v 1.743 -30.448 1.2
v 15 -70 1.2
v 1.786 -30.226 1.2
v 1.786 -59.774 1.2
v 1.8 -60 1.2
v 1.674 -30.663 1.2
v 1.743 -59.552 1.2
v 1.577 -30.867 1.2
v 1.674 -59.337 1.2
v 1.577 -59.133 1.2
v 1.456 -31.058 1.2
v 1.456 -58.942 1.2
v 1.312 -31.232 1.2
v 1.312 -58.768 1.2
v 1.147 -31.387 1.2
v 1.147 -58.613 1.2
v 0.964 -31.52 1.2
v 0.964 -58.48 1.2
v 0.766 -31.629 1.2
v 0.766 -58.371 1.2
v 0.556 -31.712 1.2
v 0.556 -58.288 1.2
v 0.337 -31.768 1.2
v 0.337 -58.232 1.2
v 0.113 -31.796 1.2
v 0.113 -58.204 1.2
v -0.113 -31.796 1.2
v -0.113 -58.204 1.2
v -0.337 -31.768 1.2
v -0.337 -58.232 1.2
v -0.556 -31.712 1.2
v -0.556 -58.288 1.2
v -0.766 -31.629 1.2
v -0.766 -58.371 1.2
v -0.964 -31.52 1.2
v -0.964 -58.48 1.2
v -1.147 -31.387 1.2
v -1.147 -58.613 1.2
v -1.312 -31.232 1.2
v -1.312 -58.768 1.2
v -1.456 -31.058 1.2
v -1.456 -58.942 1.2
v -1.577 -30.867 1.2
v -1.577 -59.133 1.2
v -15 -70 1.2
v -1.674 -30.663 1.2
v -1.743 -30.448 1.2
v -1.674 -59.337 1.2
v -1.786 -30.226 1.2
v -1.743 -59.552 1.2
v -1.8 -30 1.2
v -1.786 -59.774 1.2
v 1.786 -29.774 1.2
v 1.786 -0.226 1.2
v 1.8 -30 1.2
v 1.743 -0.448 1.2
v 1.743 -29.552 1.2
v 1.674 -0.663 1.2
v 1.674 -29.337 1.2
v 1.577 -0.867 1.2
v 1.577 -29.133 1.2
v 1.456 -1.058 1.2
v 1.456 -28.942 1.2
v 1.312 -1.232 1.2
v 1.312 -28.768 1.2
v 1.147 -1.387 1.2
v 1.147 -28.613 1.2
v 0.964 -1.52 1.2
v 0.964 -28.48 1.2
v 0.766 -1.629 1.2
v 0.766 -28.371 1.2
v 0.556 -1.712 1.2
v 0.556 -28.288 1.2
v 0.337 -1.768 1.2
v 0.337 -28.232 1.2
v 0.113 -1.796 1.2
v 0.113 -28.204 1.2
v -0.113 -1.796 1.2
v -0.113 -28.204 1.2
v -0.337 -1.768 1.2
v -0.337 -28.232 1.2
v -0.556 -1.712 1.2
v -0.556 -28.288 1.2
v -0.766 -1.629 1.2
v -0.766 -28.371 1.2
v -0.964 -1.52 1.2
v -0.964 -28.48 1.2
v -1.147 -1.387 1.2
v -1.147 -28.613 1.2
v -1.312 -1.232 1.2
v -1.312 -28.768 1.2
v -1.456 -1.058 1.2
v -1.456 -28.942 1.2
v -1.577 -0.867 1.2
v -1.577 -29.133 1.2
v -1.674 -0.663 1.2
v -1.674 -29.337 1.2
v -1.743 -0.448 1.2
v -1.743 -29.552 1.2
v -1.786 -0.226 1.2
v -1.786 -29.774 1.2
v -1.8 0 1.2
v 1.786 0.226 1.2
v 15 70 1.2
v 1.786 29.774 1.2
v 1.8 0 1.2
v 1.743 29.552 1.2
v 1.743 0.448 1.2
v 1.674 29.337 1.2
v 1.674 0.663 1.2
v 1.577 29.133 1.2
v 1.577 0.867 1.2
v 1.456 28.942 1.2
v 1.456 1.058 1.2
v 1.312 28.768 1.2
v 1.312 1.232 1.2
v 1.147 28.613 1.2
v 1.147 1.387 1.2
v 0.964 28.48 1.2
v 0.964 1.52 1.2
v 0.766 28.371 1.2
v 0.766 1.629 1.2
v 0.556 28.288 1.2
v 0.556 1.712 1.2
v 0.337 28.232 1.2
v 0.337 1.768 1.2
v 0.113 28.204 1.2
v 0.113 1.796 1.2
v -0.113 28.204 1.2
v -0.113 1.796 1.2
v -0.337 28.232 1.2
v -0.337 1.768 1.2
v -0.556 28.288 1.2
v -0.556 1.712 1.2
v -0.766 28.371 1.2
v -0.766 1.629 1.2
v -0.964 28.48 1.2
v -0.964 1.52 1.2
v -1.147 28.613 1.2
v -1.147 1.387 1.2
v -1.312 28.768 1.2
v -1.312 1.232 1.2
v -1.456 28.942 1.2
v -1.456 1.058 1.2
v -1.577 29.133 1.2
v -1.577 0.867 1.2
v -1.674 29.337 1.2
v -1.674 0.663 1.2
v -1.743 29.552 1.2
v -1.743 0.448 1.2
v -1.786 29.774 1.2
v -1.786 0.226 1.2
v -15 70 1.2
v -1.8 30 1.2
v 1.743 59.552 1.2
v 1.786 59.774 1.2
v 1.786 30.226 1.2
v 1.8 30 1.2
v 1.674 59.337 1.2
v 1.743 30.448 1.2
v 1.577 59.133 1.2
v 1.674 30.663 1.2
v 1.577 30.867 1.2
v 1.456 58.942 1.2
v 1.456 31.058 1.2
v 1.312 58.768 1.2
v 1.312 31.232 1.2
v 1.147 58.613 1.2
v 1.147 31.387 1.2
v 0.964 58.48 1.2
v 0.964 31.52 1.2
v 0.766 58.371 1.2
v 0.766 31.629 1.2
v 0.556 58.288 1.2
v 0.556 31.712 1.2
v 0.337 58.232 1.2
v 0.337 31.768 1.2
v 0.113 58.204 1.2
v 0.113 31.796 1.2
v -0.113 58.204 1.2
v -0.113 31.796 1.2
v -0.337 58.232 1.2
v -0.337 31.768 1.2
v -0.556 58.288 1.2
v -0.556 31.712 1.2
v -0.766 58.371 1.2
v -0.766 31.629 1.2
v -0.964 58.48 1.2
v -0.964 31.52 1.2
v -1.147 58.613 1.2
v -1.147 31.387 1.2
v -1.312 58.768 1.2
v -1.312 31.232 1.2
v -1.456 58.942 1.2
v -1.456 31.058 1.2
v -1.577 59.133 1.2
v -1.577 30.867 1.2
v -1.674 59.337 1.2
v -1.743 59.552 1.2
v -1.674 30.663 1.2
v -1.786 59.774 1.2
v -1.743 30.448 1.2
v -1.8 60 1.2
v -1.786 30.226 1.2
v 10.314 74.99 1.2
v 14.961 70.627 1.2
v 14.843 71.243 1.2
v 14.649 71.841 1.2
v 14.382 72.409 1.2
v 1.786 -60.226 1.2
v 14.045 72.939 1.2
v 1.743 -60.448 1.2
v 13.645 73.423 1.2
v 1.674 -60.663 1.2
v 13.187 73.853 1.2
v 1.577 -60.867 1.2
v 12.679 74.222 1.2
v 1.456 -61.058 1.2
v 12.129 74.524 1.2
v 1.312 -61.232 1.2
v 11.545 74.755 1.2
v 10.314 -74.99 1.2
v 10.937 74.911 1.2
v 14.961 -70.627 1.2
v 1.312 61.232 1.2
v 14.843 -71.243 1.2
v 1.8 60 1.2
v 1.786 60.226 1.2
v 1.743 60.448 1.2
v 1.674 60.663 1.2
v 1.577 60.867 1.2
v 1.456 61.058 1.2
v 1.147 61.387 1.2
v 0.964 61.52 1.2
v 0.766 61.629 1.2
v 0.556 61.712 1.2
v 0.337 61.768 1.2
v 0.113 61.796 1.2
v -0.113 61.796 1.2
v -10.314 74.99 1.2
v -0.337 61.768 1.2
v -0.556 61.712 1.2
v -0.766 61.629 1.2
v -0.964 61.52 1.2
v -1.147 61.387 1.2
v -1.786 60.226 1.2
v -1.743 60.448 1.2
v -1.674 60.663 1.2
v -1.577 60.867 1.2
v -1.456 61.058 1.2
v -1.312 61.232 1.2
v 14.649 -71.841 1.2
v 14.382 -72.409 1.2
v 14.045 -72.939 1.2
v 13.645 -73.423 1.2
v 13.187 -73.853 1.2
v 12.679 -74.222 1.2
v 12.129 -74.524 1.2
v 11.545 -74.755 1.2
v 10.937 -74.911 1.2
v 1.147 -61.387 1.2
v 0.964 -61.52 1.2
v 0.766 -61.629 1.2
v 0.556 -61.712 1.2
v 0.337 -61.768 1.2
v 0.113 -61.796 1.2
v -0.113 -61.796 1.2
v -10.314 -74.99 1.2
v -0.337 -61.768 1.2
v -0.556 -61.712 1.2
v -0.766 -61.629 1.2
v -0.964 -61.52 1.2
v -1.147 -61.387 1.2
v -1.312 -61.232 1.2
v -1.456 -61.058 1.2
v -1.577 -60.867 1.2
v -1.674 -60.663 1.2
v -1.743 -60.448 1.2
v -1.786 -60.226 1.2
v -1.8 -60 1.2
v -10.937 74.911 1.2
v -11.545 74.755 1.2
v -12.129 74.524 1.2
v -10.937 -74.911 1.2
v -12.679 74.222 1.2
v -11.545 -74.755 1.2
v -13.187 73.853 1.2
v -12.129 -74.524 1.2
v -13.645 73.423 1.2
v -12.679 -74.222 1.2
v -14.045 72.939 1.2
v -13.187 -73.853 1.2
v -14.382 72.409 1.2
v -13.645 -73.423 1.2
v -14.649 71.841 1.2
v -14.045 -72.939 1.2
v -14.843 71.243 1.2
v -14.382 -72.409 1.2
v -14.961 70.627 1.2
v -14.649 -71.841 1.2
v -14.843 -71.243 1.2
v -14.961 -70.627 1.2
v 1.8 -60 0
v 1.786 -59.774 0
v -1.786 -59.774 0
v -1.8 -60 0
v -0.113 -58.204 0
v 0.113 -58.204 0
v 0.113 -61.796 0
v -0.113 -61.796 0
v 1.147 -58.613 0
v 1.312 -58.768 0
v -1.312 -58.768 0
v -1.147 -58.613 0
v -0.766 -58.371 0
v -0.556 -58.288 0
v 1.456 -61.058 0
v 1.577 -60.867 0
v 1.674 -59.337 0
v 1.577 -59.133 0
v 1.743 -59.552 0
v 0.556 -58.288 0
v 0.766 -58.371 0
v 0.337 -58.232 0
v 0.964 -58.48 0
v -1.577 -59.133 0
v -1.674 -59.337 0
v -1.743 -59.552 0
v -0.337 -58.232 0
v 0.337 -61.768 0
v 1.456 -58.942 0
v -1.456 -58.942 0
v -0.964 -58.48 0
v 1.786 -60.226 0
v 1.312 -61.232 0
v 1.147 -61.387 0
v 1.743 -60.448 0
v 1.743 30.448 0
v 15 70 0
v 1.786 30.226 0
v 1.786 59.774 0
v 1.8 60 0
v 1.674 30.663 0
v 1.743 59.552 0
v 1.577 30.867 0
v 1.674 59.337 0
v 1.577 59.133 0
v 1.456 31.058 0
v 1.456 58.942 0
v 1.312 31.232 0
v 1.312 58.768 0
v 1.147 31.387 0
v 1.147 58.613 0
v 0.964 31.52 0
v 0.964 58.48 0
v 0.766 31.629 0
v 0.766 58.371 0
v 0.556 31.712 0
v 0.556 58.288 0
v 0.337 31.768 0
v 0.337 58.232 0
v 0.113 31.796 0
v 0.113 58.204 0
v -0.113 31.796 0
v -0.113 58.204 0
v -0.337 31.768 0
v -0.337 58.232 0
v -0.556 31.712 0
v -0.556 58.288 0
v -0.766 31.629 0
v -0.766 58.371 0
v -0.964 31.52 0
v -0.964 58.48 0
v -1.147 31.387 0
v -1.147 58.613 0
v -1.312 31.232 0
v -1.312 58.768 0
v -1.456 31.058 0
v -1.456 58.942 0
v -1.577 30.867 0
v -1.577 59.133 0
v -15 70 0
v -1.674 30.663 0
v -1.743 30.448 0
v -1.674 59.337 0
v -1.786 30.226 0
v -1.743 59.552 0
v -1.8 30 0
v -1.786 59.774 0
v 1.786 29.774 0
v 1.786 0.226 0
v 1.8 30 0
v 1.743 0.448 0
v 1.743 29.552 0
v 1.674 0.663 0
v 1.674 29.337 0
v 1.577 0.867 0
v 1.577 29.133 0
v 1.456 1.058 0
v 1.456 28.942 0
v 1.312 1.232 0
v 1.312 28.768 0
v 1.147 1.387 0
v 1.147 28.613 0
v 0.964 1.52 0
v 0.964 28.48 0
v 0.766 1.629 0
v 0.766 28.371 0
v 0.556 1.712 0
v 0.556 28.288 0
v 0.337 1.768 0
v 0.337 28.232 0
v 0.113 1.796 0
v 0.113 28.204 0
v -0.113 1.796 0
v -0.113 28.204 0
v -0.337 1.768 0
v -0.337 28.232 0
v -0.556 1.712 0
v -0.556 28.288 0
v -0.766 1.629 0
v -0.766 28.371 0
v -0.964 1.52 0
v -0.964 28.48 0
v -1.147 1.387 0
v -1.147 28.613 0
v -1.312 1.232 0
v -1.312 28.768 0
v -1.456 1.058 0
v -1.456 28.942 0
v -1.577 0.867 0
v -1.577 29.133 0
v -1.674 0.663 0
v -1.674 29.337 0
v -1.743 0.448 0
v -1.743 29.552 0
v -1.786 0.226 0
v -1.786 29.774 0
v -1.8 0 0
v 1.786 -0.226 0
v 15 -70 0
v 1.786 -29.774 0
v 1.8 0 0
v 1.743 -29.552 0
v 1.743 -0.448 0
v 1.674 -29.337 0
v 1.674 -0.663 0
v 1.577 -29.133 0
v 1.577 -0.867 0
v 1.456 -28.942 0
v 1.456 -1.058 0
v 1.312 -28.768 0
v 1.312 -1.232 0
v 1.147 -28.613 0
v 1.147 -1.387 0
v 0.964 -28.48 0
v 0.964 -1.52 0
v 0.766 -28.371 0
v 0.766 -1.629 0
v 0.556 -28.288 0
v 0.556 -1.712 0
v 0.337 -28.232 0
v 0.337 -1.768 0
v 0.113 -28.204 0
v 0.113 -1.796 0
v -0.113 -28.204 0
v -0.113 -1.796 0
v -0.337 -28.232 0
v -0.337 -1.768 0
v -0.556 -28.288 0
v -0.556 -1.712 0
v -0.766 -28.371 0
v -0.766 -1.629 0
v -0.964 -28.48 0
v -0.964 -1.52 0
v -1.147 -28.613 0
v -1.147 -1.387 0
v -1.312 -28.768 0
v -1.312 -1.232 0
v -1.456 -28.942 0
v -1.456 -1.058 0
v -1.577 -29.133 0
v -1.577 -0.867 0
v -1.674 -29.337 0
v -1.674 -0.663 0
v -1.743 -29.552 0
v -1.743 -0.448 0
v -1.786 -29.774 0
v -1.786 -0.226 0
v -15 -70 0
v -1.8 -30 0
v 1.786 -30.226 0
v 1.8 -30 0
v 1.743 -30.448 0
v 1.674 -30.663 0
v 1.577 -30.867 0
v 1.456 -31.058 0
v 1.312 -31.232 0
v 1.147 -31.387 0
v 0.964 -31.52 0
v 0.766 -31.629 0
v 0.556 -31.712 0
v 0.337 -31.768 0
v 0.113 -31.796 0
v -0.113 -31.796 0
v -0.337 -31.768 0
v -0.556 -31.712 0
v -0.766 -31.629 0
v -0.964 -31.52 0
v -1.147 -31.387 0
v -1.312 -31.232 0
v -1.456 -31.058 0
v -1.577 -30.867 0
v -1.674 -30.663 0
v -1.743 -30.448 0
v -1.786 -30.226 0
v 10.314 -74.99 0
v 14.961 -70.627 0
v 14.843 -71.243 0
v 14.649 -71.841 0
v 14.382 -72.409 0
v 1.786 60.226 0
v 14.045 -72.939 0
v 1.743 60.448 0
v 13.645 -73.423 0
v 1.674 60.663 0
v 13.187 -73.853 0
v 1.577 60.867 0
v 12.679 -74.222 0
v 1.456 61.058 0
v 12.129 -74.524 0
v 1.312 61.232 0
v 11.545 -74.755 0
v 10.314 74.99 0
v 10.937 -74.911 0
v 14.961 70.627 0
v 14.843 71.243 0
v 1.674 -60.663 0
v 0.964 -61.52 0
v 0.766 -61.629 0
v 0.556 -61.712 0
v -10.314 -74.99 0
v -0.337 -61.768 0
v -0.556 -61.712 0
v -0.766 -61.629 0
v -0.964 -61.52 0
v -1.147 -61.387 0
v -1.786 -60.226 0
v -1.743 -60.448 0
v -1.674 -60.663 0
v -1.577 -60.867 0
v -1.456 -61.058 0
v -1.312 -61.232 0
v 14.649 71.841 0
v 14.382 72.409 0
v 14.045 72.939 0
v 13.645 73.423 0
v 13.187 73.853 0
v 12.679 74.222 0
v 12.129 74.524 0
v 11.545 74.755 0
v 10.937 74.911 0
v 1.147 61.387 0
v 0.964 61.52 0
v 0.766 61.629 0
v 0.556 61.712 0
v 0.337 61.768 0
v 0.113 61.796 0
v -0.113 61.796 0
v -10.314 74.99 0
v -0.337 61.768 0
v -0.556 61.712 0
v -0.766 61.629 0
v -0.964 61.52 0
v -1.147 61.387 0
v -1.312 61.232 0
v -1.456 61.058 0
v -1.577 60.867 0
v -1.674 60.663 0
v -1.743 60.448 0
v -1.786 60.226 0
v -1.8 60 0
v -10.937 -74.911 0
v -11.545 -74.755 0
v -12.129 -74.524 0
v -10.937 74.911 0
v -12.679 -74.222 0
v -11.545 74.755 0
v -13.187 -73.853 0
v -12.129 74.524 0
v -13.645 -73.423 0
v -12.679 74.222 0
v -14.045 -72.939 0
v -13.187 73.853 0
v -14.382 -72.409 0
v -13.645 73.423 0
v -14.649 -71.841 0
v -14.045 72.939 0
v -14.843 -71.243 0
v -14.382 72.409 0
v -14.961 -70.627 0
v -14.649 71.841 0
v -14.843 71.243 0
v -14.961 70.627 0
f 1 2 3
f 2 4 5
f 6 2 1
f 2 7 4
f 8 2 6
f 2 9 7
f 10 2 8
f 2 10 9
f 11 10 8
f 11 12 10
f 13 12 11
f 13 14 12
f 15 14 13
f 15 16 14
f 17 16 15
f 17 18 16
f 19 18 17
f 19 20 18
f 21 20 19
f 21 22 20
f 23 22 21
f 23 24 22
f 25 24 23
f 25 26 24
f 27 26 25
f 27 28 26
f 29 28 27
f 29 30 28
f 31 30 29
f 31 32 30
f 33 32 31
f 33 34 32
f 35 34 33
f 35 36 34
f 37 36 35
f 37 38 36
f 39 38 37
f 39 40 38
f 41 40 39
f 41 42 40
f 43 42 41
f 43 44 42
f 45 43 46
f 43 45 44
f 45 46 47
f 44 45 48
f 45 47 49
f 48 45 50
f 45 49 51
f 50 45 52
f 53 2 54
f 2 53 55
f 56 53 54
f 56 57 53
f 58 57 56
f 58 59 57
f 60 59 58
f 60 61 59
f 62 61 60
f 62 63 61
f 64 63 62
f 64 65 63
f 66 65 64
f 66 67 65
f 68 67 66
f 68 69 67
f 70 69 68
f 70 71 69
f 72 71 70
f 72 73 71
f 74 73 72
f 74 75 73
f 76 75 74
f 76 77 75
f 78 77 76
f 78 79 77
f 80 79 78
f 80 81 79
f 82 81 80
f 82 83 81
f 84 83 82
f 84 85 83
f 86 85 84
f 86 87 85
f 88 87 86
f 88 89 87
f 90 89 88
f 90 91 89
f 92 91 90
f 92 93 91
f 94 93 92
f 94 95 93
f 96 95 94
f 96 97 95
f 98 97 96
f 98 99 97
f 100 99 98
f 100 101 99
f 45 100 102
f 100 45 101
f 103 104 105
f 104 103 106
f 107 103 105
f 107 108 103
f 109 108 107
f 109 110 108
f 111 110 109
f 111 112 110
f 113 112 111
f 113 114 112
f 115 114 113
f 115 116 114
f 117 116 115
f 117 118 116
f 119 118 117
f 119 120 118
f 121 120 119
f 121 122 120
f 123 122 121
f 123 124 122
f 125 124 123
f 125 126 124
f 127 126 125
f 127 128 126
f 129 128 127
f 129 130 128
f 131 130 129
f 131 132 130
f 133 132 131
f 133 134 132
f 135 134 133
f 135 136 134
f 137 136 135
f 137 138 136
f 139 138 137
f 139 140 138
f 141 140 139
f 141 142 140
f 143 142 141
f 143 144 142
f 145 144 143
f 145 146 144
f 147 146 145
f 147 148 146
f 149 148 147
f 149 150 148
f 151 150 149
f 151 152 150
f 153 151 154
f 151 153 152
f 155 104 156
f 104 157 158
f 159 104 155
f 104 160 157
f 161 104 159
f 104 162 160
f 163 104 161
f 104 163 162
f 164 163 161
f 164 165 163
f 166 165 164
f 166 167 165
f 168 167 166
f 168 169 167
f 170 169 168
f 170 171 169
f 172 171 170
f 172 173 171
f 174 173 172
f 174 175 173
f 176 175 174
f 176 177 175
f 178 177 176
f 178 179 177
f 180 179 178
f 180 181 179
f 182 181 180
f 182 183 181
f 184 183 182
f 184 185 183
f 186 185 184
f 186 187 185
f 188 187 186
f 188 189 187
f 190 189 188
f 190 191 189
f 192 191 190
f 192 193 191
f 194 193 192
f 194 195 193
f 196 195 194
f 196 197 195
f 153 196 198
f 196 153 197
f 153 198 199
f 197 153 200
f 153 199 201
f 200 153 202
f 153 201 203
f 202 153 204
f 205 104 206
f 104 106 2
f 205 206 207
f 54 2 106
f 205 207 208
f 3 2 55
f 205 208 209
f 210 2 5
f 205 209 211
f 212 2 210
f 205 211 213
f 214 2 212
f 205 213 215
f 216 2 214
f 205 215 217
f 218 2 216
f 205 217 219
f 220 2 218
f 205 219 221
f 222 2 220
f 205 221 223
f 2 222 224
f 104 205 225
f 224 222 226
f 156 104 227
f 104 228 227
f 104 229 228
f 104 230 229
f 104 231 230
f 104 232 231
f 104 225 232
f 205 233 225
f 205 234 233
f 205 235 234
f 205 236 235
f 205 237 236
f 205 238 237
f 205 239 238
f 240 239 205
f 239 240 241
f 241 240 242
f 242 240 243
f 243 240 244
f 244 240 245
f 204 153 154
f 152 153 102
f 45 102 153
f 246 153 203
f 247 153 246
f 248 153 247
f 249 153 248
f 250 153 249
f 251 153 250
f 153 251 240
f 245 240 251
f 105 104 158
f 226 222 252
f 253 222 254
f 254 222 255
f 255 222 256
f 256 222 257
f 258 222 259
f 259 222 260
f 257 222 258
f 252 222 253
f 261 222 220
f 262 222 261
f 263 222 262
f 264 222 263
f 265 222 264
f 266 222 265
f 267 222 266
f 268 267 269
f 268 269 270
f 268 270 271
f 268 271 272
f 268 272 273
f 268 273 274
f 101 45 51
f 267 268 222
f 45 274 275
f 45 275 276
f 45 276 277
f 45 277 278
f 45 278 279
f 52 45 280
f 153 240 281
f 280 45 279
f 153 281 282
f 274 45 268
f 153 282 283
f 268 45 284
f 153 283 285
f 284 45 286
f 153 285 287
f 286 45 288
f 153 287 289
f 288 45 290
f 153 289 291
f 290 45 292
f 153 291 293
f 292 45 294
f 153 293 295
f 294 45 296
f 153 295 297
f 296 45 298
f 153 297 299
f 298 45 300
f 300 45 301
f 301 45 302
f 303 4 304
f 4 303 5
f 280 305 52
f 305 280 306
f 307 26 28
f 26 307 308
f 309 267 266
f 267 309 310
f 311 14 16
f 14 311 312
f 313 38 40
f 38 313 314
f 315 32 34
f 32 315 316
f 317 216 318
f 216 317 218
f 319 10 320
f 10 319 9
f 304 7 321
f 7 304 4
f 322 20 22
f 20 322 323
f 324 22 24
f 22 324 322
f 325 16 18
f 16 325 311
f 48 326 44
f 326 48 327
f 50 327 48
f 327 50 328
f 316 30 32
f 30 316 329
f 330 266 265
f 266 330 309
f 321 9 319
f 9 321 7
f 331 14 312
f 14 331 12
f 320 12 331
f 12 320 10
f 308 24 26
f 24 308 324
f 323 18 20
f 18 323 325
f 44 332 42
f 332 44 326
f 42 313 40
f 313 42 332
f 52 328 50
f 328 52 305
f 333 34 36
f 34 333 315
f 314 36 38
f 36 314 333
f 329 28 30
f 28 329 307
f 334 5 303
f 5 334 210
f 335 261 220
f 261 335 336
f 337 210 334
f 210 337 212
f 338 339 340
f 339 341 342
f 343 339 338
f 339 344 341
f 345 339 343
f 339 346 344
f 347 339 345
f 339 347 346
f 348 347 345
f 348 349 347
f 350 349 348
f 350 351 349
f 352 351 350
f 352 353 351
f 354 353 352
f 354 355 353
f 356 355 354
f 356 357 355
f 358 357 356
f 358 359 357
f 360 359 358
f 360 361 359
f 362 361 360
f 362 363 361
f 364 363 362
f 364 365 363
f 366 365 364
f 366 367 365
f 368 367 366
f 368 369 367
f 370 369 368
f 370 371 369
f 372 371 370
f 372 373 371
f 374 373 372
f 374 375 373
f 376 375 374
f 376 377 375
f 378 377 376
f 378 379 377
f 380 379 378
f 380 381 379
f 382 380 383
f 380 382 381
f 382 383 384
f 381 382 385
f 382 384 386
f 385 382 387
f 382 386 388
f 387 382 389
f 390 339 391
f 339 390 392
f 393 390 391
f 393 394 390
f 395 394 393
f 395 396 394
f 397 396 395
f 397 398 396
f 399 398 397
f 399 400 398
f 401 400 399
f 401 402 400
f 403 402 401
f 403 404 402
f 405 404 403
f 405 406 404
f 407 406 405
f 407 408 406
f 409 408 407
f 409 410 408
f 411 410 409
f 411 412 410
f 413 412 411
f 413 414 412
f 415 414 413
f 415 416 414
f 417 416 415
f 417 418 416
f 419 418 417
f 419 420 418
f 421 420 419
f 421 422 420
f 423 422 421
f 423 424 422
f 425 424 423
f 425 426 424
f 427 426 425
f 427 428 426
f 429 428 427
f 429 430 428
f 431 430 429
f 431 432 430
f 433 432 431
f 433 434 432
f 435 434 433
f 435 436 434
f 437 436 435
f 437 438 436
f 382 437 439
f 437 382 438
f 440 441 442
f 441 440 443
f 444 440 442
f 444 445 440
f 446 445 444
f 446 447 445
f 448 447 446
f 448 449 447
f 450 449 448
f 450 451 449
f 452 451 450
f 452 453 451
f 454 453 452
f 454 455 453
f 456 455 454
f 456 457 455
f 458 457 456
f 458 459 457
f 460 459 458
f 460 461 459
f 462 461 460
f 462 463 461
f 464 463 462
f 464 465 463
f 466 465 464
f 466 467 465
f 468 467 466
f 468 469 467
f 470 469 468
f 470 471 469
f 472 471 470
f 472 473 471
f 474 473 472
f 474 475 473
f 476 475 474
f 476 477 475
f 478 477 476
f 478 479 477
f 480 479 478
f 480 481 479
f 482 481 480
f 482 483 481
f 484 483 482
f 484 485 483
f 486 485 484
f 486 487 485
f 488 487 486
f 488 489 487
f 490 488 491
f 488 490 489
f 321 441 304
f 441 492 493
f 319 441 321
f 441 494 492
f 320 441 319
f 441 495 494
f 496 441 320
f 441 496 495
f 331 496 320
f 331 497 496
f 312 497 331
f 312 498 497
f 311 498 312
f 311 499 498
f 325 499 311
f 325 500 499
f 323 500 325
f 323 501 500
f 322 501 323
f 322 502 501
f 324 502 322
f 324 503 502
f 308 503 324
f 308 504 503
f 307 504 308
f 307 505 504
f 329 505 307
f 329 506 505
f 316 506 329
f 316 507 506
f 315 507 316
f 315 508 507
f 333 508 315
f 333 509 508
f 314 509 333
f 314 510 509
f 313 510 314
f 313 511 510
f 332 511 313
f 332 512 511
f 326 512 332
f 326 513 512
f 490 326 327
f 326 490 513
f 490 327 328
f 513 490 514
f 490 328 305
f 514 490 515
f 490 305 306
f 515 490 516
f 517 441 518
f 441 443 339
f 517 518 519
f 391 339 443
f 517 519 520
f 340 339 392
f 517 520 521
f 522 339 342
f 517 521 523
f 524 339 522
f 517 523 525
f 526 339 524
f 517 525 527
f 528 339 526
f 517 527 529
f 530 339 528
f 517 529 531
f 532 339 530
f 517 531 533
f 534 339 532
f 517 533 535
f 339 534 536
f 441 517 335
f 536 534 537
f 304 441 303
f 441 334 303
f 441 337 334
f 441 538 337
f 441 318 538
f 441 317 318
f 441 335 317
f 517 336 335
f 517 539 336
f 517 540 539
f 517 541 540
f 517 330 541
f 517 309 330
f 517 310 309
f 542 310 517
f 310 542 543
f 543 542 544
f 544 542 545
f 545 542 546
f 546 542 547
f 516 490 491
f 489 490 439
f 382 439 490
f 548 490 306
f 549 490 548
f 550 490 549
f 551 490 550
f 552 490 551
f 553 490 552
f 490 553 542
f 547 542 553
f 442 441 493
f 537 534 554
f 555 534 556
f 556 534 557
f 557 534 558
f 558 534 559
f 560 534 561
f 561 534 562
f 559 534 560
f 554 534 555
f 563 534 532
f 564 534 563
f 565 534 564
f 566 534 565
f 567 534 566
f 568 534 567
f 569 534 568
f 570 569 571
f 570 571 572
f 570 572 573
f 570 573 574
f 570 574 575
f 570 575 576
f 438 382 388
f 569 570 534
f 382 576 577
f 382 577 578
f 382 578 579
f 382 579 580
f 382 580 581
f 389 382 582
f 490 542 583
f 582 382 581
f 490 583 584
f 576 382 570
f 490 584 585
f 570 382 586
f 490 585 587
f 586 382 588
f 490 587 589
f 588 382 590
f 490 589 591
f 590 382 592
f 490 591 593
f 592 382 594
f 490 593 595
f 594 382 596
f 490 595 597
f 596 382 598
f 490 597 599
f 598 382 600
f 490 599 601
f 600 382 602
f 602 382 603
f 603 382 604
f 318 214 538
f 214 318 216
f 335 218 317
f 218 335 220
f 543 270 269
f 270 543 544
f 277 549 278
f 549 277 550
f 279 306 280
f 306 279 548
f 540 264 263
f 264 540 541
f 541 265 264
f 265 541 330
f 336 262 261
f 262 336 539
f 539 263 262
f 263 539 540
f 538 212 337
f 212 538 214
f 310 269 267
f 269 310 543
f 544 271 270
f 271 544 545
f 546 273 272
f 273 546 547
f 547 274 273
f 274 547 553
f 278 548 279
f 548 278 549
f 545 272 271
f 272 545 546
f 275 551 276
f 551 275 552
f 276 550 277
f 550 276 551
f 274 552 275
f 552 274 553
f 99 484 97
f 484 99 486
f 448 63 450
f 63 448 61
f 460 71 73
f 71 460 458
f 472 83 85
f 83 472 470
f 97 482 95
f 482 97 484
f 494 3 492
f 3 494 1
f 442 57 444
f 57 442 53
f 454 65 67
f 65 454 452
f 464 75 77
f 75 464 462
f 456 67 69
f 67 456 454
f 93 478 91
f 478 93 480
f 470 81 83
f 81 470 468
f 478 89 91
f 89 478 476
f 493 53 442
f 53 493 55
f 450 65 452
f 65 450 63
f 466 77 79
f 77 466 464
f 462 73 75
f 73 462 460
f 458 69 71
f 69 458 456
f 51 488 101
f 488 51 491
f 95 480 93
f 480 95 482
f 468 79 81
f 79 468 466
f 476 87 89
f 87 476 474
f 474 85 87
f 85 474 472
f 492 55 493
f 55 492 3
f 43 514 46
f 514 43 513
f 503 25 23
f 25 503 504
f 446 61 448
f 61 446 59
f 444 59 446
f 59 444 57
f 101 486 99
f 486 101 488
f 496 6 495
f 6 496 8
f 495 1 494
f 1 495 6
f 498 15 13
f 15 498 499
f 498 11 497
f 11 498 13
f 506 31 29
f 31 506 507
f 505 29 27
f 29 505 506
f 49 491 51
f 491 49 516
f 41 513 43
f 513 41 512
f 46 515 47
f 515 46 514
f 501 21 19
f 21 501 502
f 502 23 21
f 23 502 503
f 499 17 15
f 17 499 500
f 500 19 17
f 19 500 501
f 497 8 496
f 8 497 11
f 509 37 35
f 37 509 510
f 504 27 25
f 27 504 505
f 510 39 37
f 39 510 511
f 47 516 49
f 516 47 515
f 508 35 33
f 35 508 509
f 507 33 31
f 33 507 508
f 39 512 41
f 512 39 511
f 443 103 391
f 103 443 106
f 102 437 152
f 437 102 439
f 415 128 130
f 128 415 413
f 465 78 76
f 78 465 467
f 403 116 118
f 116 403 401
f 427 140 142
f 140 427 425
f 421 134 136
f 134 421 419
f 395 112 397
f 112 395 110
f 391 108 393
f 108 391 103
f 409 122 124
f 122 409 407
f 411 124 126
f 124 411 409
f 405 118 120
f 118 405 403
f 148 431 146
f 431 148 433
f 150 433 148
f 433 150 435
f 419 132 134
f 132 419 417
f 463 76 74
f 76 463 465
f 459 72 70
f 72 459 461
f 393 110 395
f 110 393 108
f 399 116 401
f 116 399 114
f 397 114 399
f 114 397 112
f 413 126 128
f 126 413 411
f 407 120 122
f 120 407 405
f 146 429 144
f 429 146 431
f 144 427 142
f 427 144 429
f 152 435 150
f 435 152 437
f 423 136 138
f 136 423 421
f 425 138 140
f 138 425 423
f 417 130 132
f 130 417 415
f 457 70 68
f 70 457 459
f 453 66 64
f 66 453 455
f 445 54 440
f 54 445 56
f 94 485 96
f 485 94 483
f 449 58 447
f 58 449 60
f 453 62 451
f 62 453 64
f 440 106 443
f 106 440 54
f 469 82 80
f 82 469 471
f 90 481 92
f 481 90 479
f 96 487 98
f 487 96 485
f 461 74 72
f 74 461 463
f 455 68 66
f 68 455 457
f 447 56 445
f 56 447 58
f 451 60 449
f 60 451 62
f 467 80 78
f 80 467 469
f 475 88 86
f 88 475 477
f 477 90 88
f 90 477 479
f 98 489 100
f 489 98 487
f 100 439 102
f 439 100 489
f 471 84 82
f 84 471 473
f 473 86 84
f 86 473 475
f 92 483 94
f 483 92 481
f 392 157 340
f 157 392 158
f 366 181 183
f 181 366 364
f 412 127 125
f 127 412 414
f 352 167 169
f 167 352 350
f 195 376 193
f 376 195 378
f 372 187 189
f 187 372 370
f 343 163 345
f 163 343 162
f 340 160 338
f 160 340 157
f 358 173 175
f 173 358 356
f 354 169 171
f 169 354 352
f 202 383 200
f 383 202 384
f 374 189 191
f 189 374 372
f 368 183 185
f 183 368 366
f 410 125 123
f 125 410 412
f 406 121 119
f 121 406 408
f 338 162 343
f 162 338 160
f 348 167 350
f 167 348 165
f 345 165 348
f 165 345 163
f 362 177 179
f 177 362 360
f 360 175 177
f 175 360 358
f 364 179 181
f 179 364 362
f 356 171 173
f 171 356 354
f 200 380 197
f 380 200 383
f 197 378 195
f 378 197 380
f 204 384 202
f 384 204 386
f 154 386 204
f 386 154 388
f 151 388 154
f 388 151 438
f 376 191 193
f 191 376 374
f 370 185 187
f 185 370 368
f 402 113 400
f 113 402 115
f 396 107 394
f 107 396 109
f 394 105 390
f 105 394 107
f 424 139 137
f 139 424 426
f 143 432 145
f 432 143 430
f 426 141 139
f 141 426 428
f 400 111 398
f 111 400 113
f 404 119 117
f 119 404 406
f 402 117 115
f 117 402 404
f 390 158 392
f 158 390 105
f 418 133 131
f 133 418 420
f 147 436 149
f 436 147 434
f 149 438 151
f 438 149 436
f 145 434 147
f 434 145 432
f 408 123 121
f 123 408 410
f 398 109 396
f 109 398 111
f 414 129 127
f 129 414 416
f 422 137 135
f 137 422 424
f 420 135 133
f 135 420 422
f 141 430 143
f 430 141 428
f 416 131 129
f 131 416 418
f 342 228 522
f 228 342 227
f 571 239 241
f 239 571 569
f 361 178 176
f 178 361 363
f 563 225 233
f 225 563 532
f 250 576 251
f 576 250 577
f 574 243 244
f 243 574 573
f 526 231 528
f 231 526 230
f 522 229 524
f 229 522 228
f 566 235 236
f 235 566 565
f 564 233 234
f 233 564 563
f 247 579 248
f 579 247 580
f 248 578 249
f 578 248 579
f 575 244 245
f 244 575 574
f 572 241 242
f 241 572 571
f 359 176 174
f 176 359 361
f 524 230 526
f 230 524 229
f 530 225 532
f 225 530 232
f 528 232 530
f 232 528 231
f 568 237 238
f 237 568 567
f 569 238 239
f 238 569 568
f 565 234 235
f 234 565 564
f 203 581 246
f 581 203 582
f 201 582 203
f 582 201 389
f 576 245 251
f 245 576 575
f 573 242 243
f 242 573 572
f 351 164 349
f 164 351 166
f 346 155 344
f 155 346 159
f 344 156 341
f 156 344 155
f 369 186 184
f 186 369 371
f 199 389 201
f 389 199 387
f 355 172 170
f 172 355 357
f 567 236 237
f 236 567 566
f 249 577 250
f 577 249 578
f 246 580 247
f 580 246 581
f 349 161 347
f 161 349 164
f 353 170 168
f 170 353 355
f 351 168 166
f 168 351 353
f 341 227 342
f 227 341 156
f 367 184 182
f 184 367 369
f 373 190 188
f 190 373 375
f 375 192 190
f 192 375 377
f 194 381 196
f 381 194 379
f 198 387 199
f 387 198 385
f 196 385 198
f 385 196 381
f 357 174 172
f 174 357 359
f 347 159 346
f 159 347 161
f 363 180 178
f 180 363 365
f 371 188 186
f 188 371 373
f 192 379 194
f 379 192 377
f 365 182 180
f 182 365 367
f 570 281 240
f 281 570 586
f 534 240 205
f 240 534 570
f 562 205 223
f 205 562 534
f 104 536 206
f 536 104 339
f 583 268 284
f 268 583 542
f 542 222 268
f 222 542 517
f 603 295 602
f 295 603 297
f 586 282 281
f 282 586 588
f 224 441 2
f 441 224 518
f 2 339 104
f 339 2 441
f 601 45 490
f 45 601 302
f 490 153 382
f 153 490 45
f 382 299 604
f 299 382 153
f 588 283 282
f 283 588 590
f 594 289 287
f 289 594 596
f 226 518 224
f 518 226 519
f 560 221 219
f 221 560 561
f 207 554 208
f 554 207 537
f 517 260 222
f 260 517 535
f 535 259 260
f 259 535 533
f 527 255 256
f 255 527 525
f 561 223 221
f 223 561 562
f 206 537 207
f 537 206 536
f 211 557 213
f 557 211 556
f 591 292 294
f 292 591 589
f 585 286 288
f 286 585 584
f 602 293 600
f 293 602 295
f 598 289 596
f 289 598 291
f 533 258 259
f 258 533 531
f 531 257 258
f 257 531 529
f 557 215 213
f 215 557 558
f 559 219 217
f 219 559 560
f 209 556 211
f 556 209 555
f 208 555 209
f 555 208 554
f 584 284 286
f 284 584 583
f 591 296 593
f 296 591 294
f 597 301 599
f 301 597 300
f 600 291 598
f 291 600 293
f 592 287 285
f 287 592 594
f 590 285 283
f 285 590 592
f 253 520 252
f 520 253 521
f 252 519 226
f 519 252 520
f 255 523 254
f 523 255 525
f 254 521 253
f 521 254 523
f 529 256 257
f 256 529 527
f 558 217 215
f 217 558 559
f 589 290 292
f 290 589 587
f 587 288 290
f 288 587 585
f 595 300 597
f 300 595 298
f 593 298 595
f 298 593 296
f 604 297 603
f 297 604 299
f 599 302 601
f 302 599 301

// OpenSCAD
$fn = 50;


difference() {
	union() {
		hull() {
			translate(v = [-10.0000000000, 70.0000000000, 0]) {
				cylinder(h = 30, r = 5);
			}
			translate(v = [10.0000000000, 70.0000000000, 0]) {
				cylinder(h = 30, r = 5);
			}
			translate(v = [-10.0000000000, -70.0000000000, 0]) {
				cylinder(h = 30, r = 5);
			}
			translate(v = [10.0000000000, -70.0000000000, 0]) {
				cylinder(h = 30, r = 5);
			}
		}
	}
	union() {
		translate(v = [0, 0, 1.2000000000]) {
			hull() {
				translate(v = [-10.0000000000, 70.0000000000, 0]) {
					cylinder(h = 28.8000000000, r = 3.8000000000);
				}
				translate(v = [10.0000000000, 70.0000000000, 0]) {
					cylinder(h = 28.8000000000, r = 3.8000000000);
				}
				translate(v = [-10.0000000000, -70.0000000000, 0]) {
					cylinder(h = 28.8000000000, r = 3.8000000000);
				}
				translate(v = [10.0000000000, -70.0000000000, 0]) {
					cylinder(h = 28.8000000000, r = 3.8000000000);
				}
			}
		}
		#translate(v = [0.0000000000, -60.0000000000, 0]) {
			cylinder(h = 1.2000000000, r = 1.8000000000);
		}
		#translate(v = [0.0000000000, -30.0000000000, 0]) {
			cylinder(h = 1.2000000000, r = 1.8000000000);
		}
		#cylinder(h = 1.2000000000, r = 1.8000000000);
		#translate(v = [0.0000000000, 30.0000000000, 0]) {
			cylinder(h = 1.2000000000, r = 1.8000000000);
		}
		#translate(v = [0.0000000000, 60.0000000000, 0]) {
			cylinder(h = 1.2000000000, r = 1.8000000000);
		}
		translate(v = [-250.0000000000, -250.0000000000, 1.2000000000]) {
			cube(size = [500, 500, 500]);
		}
		translate(v = [-250.0000000000, -250.0000000000, 1.2000000000]) {
			cube(size = [500, 500, 500]);
		}
		translate(v = [-250.0000000000, -250.0000000000, 1.2000000000]) {
			cube(size = [500, 500, 500]);
		}
	}
}
